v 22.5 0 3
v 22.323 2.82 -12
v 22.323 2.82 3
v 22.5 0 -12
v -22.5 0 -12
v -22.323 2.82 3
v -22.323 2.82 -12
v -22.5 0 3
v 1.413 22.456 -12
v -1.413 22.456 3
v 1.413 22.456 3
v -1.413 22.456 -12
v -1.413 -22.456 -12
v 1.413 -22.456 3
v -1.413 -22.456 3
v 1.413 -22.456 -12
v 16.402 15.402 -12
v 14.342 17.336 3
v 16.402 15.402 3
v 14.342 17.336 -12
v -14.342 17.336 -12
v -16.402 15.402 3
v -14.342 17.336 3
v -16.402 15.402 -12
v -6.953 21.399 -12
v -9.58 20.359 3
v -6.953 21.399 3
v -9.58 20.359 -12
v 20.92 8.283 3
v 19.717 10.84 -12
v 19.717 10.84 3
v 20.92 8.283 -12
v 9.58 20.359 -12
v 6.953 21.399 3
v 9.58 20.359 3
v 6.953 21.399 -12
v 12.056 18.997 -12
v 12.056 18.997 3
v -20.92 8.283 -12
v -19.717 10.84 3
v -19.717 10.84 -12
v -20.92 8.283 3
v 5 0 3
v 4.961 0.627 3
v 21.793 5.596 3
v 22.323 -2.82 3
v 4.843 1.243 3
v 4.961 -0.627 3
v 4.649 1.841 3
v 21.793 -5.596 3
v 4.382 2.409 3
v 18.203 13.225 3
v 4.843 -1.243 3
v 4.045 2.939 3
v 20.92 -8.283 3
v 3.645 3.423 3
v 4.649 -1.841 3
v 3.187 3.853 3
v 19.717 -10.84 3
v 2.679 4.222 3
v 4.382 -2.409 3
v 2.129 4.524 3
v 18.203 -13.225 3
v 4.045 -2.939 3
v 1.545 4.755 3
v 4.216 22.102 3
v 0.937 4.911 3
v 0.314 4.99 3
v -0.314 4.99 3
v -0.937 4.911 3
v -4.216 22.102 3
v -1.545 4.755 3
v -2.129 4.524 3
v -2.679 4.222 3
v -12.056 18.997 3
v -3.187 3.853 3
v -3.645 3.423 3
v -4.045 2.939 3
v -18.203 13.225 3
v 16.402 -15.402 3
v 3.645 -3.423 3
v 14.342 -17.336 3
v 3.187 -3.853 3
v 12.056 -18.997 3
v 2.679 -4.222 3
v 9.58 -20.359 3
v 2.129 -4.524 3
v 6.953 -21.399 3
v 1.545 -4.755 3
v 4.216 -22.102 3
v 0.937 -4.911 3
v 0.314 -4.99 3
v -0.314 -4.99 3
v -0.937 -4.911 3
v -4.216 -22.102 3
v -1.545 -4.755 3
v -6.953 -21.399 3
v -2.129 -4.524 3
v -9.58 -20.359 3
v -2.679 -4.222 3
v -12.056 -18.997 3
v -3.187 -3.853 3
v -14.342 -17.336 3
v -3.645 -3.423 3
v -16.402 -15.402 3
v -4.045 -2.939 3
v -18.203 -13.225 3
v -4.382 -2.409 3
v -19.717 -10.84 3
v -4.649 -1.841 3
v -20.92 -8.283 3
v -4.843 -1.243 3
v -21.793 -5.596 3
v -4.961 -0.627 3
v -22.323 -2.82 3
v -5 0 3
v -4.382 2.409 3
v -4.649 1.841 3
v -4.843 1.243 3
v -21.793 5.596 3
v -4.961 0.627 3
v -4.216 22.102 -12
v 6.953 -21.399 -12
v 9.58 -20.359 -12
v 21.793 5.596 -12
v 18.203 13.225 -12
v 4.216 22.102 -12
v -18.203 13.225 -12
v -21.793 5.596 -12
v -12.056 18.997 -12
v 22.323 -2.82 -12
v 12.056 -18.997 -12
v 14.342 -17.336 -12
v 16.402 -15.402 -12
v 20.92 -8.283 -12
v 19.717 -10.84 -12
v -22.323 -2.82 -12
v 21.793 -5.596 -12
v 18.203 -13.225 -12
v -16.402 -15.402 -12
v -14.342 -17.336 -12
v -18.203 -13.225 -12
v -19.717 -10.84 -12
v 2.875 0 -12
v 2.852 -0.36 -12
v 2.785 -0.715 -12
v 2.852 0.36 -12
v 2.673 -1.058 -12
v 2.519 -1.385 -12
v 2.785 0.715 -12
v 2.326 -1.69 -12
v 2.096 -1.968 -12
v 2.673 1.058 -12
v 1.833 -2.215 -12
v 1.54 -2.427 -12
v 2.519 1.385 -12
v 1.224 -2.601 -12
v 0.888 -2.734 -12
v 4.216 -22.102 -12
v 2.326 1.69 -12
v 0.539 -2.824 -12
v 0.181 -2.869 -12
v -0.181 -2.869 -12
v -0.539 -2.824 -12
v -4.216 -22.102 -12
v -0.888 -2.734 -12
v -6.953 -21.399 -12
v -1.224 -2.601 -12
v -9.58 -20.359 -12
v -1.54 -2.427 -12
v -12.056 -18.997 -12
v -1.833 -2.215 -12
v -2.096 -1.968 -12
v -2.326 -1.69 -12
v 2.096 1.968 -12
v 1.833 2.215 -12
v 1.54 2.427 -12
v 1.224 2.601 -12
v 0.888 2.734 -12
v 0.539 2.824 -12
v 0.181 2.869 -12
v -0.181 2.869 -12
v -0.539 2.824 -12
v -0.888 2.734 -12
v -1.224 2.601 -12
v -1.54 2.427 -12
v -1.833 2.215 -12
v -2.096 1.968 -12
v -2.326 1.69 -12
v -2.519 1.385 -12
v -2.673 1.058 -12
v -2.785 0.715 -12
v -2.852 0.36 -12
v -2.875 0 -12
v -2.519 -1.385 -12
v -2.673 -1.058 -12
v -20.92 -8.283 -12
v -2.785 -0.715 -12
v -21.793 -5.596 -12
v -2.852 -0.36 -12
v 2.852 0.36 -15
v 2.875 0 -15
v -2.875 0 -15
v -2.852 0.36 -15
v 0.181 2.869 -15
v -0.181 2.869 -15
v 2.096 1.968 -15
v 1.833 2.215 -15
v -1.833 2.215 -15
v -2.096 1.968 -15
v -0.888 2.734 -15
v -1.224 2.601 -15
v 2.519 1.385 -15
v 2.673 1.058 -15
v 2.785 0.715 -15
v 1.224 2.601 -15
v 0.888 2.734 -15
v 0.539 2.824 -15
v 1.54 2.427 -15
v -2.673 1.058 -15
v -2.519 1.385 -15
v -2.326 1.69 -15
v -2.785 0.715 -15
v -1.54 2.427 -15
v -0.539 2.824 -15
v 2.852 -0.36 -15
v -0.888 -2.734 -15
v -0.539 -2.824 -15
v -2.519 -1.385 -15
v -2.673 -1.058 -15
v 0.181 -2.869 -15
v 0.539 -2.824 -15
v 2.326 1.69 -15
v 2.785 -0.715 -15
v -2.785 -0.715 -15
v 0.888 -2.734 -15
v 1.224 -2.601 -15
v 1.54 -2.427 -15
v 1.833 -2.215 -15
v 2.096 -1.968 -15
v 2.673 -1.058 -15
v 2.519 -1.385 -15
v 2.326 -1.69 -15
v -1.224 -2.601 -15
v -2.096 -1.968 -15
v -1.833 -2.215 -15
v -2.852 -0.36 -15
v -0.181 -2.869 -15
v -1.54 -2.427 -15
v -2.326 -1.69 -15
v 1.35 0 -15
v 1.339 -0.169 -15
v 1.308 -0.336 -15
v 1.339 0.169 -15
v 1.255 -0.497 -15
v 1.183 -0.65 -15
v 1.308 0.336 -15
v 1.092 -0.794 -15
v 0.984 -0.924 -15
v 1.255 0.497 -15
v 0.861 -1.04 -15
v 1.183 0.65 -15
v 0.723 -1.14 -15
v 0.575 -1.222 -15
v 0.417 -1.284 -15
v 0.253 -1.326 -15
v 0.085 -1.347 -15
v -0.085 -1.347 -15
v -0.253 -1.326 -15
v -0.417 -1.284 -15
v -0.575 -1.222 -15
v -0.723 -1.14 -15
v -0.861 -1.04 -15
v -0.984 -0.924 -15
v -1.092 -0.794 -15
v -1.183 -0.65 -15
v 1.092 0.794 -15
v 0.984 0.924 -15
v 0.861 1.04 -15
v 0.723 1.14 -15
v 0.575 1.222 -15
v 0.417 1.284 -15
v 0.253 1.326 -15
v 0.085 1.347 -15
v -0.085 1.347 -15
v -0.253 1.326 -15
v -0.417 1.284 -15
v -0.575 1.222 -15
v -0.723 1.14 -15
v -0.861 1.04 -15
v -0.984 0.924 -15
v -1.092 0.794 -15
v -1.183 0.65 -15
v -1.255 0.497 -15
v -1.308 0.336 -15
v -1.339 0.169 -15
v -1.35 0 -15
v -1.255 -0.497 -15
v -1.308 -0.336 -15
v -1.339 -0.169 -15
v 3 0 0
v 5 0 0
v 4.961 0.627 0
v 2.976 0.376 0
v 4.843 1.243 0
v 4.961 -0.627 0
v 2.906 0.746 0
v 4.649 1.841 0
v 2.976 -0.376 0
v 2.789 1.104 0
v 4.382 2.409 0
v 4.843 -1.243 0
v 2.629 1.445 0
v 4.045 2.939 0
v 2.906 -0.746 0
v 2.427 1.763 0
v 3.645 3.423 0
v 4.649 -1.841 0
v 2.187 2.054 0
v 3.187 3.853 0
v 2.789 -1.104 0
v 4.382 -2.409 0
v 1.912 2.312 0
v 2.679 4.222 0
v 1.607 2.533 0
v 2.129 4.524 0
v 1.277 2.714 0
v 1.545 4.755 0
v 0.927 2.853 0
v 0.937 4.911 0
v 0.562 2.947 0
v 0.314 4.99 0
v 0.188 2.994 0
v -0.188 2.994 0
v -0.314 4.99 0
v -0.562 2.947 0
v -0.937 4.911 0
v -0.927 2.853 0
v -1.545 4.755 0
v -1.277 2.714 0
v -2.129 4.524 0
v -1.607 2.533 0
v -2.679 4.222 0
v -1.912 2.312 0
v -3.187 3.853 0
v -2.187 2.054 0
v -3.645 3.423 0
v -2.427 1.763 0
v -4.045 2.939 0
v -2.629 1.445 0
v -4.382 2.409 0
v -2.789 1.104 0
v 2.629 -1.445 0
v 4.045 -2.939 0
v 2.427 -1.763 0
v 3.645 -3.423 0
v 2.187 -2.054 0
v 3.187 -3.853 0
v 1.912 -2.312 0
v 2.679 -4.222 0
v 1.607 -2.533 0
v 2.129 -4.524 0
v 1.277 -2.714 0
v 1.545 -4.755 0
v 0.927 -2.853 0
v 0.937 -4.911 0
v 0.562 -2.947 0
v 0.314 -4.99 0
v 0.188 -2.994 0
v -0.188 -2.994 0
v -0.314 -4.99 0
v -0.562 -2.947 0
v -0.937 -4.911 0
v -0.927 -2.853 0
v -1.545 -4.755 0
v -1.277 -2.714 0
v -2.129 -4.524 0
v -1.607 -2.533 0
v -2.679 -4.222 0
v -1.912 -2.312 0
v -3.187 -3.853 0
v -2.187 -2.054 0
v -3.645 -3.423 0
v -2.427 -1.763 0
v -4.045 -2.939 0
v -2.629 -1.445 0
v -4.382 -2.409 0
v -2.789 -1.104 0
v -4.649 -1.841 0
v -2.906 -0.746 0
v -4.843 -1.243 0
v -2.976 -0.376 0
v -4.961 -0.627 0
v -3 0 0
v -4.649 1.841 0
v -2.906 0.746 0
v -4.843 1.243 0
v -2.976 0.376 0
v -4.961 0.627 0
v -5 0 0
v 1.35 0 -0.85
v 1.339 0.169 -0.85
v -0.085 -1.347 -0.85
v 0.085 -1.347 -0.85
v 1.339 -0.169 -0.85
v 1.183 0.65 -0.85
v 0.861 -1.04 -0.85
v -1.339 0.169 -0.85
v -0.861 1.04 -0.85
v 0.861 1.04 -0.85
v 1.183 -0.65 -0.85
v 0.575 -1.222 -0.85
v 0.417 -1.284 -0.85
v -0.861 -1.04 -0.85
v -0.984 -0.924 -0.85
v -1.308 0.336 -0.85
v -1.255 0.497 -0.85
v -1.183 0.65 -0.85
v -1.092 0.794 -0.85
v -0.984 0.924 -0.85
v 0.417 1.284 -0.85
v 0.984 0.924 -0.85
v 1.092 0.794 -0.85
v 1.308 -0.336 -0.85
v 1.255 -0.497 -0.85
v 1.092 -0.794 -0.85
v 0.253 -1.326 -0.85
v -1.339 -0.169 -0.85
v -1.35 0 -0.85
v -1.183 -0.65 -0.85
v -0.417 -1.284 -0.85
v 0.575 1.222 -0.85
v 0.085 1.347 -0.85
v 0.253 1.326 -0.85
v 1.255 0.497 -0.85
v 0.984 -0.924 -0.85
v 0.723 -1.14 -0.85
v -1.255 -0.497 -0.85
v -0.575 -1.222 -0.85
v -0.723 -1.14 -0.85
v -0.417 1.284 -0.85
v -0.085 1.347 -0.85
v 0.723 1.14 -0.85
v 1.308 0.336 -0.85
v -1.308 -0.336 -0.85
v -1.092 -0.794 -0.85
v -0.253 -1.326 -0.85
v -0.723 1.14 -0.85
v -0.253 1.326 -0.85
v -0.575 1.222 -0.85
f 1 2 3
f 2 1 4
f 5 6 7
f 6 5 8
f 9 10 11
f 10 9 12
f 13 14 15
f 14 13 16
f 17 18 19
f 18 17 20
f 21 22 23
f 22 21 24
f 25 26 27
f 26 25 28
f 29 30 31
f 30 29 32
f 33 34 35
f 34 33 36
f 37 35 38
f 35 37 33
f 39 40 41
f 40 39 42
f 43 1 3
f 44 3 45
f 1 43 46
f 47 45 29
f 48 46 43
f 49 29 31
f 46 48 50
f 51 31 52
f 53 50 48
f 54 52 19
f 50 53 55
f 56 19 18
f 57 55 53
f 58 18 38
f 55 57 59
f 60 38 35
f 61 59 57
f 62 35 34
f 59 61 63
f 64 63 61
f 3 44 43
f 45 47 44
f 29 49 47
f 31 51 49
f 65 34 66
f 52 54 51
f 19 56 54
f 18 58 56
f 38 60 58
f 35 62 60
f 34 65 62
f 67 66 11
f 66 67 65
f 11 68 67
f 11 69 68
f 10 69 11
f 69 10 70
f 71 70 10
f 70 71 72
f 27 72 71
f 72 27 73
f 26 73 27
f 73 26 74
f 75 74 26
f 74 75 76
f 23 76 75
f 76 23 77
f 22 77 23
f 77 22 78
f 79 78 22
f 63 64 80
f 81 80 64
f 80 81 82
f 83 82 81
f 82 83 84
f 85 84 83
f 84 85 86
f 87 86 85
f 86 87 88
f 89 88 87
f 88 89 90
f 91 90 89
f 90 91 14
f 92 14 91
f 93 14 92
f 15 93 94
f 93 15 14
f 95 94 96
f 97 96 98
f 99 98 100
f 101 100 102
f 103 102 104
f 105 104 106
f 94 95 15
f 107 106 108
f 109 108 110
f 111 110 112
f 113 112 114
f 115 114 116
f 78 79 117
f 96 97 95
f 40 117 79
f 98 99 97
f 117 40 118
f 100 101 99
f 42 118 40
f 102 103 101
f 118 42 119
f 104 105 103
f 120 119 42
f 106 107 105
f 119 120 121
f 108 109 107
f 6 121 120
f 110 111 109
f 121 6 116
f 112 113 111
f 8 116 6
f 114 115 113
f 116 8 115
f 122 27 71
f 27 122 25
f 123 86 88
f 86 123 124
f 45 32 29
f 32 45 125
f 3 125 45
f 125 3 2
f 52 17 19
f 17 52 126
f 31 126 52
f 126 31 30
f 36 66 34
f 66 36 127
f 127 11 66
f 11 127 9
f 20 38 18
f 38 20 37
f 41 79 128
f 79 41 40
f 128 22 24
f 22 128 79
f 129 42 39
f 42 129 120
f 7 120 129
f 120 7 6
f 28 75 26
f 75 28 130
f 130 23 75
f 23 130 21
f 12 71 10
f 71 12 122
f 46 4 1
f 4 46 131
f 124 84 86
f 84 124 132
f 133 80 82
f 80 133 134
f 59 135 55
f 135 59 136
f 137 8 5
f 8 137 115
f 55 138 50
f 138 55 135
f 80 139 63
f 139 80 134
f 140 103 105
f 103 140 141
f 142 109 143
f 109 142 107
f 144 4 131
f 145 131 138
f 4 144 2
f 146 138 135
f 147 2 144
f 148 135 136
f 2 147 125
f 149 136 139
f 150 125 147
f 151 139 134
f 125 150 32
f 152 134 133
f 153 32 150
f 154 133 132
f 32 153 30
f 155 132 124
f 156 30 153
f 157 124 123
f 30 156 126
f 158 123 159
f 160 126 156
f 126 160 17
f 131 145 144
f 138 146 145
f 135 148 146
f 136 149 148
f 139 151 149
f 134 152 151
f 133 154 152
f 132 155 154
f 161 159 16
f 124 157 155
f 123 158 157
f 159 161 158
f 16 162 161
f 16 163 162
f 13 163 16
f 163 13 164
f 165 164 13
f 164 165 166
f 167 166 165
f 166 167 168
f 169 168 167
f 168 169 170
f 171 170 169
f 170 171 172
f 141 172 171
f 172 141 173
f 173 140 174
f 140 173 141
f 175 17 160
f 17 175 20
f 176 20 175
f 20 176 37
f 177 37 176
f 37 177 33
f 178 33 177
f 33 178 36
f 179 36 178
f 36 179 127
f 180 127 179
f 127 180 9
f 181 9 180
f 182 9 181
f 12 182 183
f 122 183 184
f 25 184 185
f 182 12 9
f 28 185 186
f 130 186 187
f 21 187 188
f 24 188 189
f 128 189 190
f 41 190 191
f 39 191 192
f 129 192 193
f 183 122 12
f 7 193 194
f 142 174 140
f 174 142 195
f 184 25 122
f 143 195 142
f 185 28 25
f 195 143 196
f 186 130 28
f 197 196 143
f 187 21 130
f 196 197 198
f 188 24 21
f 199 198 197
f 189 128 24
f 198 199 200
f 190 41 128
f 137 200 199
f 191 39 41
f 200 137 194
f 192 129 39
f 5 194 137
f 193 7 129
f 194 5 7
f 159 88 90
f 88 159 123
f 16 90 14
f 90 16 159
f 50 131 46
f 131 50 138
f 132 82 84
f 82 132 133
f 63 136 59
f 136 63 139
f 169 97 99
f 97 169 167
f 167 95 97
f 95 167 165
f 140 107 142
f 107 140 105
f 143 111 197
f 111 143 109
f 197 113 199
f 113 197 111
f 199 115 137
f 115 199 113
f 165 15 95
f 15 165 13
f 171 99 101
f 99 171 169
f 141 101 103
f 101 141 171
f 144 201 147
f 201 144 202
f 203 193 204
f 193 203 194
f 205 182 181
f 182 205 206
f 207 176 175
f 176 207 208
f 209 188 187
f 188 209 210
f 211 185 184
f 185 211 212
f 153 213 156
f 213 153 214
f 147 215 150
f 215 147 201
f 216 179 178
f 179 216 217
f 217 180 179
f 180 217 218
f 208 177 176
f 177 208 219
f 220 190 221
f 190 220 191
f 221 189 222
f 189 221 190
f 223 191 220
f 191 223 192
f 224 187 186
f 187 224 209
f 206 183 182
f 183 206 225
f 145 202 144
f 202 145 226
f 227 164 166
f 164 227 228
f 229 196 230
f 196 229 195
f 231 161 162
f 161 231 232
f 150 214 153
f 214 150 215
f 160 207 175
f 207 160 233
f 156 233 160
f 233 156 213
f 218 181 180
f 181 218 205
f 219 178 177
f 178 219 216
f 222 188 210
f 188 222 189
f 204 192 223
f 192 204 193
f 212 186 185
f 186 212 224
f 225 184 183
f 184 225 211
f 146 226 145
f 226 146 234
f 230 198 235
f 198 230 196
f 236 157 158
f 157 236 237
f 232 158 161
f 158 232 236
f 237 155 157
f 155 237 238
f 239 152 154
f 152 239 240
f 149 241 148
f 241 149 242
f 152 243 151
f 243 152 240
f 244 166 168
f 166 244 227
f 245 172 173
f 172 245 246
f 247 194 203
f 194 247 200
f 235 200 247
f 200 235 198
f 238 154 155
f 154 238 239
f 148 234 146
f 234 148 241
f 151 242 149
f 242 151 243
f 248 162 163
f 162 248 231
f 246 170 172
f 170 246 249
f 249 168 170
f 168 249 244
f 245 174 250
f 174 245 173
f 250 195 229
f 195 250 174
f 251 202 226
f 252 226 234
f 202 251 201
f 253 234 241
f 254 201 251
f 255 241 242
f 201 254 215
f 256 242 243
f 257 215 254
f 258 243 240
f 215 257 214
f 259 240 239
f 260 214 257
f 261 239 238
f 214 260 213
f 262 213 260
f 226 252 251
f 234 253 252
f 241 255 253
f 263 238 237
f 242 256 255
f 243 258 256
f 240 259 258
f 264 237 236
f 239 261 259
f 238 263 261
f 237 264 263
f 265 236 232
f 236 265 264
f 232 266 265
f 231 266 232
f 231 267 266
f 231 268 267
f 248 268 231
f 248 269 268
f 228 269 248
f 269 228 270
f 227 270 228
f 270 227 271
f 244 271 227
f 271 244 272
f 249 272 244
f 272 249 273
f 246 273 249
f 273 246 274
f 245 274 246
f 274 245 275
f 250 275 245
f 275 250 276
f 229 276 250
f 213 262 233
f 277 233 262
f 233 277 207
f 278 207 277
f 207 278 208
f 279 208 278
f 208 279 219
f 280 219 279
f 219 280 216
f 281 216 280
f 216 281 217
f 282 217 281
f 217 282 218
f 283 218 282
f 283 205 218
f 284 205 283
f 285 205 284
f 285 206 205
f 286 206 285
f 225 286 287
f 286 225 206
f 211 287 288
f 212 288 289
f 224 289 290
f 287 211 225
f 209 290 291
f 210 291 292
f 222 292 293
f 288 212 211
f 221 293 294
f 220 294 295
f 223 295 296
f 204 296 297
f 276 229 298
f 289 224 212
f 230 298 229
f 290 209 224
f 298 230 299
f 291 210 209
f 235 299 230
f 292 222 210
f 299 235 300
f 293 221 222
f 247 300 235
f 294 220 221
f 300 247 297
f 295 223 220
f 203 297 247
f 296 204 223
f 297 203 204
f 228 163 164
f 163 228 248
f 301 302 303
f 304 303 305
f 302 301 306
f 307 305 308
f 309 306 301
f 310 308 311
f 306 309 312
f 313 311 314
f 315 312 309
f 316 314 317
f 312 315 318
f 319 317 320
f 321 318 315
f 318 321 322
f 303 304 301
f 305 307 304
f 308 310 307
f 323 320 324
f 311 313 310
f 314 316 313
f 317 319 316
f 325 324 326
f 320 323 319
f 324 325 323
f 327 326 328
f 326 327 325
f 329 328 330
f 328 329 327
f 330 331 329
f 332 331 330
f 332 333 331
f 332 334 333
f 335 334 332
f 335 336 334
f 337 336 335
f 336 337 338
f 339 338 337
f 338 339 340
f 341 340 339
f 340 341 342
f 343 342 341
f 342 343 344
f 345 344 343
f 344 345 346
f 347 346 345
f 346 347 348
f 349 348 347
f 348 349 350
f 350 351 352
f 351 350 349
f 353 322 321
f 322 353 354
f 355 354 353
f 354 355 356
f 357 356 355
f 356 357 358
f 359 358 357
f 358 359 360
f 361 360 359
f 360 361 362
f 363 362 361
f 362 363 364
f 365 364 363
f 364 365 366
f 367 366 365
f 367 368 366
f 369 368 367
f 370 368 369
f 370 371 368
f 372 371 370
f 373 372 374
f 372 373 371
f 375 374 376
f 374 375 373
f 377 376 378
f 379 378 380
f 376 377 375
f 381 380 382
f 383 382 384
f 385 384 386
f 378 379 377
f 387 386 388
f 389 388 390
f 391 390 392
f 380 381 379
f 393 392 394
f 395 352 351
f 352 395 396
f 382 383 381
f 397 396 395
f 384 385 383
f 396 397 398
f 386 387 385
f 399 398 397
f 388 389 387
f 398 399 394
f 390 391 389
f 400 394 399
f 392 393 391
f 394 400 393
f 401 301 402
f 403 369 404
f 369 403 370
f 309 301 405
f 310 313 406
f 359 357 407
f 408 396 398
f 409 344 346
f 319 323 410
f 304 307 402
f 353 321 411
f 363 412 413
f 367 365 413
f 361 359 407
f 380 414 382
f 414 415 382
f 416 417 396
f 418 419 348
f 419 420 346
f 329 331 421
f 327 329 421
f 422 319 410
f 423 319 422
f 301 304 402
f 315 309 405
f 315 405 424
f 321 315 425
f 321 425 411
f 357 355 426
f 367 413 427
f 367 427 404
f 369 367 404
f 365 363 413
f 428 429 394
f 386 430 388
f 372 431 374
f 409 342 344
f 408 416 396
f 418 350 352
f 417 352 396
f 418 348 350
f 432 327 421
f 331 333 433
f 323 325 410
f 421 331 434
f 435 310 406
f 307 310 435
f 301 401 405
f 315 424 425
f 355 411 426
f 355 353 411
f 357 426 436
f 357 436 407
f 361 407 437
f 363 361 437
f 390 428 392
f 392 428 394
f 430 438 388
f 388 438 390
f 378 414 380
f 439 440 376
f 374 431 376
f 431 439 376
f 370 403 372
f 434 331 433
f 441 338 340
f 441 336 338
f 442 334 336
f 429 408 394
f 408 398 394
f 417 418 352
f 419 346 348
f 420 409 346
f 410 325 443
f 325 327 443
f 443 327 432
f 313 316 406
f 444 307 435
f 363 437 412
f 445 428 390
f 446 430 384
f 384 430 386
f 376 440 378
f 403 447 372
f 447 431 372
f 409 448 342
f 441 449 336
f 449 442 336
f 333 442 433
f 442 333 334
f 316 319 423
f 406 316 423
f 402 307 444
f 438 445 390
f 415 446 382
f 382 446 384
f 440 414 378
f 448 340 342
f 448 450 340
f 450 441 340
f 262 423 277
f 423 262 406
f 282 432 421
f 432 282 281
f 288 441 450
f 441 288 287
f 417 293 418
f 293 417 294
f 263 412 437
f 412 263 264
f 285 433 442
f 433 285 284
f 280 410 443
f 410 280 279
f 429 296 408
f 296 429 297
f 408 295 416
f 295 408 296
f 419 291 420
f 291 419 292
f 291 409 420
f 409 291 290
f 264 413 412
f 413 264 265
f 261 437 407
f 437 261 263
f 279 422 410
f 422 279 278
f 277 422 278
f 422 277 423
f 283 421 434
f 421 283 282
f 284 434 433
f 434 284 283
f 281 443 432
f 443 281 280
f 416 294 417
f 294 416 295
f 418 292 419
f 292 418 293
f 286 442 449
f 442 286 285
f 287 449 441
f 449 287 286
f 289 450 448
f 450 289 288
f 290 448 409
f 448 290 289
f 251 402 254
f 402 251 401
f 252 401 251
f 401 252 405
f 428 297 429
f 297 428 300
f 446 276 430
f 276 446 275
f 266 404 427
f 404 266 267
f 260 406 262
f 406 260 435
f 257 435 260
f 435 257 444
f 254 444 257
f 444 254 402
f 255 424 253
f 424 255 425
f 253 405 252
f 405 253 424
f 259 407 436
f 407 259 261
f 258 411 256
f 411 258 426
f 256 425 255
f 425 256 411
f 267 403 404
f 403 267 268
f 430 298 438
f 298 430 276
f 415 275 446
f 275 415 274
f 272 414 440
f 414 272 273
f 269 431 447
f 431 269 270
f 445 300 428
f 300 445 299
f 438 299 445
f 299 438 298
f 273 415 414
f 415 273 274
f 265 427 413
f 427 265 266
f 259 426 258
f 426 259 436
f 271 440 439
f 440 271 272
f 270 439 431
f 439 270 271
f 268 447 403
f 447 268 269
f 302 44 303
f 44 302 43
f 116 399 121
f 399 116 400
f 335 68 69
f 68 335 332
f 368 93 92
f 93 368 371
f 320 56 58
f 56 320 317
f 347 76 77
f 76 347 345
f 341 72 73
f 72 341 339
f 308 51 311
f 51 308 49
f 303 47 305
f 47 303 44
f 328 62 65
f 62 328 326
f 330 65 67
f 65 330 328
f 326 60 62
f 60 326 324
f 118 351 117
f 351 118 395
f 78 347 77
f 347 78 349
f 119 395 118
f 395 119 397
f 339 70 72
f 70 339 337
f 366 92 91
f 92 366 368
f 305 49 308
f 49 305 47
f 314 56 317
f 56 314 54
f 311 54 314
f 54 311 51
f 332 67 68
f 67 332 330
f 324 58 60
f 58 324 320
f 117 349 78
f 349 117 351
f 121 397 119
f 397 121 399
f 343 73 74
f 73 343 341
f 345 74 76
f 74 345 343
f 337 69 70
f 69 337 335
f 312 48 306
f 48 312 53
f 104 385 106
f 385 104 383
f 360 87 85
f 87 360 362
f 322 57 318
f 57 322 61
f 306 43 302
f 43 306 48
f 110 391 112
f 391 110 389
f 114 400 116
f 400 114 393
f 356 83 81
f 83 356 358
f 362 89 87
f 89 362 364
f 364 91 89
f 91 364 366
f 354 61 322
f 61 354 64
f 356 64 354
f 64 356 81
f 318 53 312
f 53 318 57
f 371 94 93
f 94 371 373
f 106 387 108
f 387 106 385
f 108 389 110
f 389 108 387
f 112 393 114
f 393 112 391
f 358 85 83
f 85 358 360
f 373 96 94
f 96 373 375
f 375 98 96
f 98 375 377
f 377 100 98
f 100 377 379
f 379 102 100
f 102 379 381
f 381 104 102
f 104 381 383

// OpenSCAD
$fn = 50;


difference() {
	union() {
		translate(v = [0, 0, -12.0000000000]) {
			cylinder(h = 15, r = 22.5000000000);
		}
		#translate(v = [0, 0, -15.0000000000]) {
			cylinder(h = 15, r = 2.8750000000);
		}
	}
	union() {
		translate(v = [0, 0, 0]) {
			rotate(a = [0, 0, 0]) {
				difference() {
					union() {
						translate(v = [0, 0, -15.0000000000]) {
							cylinder(h = 15, r = 1.0000000000);
						}
						translate(v = [0, 0, -0.8500000000]) {
							cylinder(h = 0.8500000000, r1 = 1.3500000000, r2 = 3.0000000000);
						}
						translate(v = [0, 0, -15.0000000000]) {
							cylinder(h = 15, r = 1.3500000000);
						}
						translate(v = [0, 0, -15.0000000000]) {
							cylinder(h = 15, r = 1.0000000000);
						}
					}
					union();
				}
			}
		}
		#cylinder(h = 3, r = 5.0000000000);
	}
}
